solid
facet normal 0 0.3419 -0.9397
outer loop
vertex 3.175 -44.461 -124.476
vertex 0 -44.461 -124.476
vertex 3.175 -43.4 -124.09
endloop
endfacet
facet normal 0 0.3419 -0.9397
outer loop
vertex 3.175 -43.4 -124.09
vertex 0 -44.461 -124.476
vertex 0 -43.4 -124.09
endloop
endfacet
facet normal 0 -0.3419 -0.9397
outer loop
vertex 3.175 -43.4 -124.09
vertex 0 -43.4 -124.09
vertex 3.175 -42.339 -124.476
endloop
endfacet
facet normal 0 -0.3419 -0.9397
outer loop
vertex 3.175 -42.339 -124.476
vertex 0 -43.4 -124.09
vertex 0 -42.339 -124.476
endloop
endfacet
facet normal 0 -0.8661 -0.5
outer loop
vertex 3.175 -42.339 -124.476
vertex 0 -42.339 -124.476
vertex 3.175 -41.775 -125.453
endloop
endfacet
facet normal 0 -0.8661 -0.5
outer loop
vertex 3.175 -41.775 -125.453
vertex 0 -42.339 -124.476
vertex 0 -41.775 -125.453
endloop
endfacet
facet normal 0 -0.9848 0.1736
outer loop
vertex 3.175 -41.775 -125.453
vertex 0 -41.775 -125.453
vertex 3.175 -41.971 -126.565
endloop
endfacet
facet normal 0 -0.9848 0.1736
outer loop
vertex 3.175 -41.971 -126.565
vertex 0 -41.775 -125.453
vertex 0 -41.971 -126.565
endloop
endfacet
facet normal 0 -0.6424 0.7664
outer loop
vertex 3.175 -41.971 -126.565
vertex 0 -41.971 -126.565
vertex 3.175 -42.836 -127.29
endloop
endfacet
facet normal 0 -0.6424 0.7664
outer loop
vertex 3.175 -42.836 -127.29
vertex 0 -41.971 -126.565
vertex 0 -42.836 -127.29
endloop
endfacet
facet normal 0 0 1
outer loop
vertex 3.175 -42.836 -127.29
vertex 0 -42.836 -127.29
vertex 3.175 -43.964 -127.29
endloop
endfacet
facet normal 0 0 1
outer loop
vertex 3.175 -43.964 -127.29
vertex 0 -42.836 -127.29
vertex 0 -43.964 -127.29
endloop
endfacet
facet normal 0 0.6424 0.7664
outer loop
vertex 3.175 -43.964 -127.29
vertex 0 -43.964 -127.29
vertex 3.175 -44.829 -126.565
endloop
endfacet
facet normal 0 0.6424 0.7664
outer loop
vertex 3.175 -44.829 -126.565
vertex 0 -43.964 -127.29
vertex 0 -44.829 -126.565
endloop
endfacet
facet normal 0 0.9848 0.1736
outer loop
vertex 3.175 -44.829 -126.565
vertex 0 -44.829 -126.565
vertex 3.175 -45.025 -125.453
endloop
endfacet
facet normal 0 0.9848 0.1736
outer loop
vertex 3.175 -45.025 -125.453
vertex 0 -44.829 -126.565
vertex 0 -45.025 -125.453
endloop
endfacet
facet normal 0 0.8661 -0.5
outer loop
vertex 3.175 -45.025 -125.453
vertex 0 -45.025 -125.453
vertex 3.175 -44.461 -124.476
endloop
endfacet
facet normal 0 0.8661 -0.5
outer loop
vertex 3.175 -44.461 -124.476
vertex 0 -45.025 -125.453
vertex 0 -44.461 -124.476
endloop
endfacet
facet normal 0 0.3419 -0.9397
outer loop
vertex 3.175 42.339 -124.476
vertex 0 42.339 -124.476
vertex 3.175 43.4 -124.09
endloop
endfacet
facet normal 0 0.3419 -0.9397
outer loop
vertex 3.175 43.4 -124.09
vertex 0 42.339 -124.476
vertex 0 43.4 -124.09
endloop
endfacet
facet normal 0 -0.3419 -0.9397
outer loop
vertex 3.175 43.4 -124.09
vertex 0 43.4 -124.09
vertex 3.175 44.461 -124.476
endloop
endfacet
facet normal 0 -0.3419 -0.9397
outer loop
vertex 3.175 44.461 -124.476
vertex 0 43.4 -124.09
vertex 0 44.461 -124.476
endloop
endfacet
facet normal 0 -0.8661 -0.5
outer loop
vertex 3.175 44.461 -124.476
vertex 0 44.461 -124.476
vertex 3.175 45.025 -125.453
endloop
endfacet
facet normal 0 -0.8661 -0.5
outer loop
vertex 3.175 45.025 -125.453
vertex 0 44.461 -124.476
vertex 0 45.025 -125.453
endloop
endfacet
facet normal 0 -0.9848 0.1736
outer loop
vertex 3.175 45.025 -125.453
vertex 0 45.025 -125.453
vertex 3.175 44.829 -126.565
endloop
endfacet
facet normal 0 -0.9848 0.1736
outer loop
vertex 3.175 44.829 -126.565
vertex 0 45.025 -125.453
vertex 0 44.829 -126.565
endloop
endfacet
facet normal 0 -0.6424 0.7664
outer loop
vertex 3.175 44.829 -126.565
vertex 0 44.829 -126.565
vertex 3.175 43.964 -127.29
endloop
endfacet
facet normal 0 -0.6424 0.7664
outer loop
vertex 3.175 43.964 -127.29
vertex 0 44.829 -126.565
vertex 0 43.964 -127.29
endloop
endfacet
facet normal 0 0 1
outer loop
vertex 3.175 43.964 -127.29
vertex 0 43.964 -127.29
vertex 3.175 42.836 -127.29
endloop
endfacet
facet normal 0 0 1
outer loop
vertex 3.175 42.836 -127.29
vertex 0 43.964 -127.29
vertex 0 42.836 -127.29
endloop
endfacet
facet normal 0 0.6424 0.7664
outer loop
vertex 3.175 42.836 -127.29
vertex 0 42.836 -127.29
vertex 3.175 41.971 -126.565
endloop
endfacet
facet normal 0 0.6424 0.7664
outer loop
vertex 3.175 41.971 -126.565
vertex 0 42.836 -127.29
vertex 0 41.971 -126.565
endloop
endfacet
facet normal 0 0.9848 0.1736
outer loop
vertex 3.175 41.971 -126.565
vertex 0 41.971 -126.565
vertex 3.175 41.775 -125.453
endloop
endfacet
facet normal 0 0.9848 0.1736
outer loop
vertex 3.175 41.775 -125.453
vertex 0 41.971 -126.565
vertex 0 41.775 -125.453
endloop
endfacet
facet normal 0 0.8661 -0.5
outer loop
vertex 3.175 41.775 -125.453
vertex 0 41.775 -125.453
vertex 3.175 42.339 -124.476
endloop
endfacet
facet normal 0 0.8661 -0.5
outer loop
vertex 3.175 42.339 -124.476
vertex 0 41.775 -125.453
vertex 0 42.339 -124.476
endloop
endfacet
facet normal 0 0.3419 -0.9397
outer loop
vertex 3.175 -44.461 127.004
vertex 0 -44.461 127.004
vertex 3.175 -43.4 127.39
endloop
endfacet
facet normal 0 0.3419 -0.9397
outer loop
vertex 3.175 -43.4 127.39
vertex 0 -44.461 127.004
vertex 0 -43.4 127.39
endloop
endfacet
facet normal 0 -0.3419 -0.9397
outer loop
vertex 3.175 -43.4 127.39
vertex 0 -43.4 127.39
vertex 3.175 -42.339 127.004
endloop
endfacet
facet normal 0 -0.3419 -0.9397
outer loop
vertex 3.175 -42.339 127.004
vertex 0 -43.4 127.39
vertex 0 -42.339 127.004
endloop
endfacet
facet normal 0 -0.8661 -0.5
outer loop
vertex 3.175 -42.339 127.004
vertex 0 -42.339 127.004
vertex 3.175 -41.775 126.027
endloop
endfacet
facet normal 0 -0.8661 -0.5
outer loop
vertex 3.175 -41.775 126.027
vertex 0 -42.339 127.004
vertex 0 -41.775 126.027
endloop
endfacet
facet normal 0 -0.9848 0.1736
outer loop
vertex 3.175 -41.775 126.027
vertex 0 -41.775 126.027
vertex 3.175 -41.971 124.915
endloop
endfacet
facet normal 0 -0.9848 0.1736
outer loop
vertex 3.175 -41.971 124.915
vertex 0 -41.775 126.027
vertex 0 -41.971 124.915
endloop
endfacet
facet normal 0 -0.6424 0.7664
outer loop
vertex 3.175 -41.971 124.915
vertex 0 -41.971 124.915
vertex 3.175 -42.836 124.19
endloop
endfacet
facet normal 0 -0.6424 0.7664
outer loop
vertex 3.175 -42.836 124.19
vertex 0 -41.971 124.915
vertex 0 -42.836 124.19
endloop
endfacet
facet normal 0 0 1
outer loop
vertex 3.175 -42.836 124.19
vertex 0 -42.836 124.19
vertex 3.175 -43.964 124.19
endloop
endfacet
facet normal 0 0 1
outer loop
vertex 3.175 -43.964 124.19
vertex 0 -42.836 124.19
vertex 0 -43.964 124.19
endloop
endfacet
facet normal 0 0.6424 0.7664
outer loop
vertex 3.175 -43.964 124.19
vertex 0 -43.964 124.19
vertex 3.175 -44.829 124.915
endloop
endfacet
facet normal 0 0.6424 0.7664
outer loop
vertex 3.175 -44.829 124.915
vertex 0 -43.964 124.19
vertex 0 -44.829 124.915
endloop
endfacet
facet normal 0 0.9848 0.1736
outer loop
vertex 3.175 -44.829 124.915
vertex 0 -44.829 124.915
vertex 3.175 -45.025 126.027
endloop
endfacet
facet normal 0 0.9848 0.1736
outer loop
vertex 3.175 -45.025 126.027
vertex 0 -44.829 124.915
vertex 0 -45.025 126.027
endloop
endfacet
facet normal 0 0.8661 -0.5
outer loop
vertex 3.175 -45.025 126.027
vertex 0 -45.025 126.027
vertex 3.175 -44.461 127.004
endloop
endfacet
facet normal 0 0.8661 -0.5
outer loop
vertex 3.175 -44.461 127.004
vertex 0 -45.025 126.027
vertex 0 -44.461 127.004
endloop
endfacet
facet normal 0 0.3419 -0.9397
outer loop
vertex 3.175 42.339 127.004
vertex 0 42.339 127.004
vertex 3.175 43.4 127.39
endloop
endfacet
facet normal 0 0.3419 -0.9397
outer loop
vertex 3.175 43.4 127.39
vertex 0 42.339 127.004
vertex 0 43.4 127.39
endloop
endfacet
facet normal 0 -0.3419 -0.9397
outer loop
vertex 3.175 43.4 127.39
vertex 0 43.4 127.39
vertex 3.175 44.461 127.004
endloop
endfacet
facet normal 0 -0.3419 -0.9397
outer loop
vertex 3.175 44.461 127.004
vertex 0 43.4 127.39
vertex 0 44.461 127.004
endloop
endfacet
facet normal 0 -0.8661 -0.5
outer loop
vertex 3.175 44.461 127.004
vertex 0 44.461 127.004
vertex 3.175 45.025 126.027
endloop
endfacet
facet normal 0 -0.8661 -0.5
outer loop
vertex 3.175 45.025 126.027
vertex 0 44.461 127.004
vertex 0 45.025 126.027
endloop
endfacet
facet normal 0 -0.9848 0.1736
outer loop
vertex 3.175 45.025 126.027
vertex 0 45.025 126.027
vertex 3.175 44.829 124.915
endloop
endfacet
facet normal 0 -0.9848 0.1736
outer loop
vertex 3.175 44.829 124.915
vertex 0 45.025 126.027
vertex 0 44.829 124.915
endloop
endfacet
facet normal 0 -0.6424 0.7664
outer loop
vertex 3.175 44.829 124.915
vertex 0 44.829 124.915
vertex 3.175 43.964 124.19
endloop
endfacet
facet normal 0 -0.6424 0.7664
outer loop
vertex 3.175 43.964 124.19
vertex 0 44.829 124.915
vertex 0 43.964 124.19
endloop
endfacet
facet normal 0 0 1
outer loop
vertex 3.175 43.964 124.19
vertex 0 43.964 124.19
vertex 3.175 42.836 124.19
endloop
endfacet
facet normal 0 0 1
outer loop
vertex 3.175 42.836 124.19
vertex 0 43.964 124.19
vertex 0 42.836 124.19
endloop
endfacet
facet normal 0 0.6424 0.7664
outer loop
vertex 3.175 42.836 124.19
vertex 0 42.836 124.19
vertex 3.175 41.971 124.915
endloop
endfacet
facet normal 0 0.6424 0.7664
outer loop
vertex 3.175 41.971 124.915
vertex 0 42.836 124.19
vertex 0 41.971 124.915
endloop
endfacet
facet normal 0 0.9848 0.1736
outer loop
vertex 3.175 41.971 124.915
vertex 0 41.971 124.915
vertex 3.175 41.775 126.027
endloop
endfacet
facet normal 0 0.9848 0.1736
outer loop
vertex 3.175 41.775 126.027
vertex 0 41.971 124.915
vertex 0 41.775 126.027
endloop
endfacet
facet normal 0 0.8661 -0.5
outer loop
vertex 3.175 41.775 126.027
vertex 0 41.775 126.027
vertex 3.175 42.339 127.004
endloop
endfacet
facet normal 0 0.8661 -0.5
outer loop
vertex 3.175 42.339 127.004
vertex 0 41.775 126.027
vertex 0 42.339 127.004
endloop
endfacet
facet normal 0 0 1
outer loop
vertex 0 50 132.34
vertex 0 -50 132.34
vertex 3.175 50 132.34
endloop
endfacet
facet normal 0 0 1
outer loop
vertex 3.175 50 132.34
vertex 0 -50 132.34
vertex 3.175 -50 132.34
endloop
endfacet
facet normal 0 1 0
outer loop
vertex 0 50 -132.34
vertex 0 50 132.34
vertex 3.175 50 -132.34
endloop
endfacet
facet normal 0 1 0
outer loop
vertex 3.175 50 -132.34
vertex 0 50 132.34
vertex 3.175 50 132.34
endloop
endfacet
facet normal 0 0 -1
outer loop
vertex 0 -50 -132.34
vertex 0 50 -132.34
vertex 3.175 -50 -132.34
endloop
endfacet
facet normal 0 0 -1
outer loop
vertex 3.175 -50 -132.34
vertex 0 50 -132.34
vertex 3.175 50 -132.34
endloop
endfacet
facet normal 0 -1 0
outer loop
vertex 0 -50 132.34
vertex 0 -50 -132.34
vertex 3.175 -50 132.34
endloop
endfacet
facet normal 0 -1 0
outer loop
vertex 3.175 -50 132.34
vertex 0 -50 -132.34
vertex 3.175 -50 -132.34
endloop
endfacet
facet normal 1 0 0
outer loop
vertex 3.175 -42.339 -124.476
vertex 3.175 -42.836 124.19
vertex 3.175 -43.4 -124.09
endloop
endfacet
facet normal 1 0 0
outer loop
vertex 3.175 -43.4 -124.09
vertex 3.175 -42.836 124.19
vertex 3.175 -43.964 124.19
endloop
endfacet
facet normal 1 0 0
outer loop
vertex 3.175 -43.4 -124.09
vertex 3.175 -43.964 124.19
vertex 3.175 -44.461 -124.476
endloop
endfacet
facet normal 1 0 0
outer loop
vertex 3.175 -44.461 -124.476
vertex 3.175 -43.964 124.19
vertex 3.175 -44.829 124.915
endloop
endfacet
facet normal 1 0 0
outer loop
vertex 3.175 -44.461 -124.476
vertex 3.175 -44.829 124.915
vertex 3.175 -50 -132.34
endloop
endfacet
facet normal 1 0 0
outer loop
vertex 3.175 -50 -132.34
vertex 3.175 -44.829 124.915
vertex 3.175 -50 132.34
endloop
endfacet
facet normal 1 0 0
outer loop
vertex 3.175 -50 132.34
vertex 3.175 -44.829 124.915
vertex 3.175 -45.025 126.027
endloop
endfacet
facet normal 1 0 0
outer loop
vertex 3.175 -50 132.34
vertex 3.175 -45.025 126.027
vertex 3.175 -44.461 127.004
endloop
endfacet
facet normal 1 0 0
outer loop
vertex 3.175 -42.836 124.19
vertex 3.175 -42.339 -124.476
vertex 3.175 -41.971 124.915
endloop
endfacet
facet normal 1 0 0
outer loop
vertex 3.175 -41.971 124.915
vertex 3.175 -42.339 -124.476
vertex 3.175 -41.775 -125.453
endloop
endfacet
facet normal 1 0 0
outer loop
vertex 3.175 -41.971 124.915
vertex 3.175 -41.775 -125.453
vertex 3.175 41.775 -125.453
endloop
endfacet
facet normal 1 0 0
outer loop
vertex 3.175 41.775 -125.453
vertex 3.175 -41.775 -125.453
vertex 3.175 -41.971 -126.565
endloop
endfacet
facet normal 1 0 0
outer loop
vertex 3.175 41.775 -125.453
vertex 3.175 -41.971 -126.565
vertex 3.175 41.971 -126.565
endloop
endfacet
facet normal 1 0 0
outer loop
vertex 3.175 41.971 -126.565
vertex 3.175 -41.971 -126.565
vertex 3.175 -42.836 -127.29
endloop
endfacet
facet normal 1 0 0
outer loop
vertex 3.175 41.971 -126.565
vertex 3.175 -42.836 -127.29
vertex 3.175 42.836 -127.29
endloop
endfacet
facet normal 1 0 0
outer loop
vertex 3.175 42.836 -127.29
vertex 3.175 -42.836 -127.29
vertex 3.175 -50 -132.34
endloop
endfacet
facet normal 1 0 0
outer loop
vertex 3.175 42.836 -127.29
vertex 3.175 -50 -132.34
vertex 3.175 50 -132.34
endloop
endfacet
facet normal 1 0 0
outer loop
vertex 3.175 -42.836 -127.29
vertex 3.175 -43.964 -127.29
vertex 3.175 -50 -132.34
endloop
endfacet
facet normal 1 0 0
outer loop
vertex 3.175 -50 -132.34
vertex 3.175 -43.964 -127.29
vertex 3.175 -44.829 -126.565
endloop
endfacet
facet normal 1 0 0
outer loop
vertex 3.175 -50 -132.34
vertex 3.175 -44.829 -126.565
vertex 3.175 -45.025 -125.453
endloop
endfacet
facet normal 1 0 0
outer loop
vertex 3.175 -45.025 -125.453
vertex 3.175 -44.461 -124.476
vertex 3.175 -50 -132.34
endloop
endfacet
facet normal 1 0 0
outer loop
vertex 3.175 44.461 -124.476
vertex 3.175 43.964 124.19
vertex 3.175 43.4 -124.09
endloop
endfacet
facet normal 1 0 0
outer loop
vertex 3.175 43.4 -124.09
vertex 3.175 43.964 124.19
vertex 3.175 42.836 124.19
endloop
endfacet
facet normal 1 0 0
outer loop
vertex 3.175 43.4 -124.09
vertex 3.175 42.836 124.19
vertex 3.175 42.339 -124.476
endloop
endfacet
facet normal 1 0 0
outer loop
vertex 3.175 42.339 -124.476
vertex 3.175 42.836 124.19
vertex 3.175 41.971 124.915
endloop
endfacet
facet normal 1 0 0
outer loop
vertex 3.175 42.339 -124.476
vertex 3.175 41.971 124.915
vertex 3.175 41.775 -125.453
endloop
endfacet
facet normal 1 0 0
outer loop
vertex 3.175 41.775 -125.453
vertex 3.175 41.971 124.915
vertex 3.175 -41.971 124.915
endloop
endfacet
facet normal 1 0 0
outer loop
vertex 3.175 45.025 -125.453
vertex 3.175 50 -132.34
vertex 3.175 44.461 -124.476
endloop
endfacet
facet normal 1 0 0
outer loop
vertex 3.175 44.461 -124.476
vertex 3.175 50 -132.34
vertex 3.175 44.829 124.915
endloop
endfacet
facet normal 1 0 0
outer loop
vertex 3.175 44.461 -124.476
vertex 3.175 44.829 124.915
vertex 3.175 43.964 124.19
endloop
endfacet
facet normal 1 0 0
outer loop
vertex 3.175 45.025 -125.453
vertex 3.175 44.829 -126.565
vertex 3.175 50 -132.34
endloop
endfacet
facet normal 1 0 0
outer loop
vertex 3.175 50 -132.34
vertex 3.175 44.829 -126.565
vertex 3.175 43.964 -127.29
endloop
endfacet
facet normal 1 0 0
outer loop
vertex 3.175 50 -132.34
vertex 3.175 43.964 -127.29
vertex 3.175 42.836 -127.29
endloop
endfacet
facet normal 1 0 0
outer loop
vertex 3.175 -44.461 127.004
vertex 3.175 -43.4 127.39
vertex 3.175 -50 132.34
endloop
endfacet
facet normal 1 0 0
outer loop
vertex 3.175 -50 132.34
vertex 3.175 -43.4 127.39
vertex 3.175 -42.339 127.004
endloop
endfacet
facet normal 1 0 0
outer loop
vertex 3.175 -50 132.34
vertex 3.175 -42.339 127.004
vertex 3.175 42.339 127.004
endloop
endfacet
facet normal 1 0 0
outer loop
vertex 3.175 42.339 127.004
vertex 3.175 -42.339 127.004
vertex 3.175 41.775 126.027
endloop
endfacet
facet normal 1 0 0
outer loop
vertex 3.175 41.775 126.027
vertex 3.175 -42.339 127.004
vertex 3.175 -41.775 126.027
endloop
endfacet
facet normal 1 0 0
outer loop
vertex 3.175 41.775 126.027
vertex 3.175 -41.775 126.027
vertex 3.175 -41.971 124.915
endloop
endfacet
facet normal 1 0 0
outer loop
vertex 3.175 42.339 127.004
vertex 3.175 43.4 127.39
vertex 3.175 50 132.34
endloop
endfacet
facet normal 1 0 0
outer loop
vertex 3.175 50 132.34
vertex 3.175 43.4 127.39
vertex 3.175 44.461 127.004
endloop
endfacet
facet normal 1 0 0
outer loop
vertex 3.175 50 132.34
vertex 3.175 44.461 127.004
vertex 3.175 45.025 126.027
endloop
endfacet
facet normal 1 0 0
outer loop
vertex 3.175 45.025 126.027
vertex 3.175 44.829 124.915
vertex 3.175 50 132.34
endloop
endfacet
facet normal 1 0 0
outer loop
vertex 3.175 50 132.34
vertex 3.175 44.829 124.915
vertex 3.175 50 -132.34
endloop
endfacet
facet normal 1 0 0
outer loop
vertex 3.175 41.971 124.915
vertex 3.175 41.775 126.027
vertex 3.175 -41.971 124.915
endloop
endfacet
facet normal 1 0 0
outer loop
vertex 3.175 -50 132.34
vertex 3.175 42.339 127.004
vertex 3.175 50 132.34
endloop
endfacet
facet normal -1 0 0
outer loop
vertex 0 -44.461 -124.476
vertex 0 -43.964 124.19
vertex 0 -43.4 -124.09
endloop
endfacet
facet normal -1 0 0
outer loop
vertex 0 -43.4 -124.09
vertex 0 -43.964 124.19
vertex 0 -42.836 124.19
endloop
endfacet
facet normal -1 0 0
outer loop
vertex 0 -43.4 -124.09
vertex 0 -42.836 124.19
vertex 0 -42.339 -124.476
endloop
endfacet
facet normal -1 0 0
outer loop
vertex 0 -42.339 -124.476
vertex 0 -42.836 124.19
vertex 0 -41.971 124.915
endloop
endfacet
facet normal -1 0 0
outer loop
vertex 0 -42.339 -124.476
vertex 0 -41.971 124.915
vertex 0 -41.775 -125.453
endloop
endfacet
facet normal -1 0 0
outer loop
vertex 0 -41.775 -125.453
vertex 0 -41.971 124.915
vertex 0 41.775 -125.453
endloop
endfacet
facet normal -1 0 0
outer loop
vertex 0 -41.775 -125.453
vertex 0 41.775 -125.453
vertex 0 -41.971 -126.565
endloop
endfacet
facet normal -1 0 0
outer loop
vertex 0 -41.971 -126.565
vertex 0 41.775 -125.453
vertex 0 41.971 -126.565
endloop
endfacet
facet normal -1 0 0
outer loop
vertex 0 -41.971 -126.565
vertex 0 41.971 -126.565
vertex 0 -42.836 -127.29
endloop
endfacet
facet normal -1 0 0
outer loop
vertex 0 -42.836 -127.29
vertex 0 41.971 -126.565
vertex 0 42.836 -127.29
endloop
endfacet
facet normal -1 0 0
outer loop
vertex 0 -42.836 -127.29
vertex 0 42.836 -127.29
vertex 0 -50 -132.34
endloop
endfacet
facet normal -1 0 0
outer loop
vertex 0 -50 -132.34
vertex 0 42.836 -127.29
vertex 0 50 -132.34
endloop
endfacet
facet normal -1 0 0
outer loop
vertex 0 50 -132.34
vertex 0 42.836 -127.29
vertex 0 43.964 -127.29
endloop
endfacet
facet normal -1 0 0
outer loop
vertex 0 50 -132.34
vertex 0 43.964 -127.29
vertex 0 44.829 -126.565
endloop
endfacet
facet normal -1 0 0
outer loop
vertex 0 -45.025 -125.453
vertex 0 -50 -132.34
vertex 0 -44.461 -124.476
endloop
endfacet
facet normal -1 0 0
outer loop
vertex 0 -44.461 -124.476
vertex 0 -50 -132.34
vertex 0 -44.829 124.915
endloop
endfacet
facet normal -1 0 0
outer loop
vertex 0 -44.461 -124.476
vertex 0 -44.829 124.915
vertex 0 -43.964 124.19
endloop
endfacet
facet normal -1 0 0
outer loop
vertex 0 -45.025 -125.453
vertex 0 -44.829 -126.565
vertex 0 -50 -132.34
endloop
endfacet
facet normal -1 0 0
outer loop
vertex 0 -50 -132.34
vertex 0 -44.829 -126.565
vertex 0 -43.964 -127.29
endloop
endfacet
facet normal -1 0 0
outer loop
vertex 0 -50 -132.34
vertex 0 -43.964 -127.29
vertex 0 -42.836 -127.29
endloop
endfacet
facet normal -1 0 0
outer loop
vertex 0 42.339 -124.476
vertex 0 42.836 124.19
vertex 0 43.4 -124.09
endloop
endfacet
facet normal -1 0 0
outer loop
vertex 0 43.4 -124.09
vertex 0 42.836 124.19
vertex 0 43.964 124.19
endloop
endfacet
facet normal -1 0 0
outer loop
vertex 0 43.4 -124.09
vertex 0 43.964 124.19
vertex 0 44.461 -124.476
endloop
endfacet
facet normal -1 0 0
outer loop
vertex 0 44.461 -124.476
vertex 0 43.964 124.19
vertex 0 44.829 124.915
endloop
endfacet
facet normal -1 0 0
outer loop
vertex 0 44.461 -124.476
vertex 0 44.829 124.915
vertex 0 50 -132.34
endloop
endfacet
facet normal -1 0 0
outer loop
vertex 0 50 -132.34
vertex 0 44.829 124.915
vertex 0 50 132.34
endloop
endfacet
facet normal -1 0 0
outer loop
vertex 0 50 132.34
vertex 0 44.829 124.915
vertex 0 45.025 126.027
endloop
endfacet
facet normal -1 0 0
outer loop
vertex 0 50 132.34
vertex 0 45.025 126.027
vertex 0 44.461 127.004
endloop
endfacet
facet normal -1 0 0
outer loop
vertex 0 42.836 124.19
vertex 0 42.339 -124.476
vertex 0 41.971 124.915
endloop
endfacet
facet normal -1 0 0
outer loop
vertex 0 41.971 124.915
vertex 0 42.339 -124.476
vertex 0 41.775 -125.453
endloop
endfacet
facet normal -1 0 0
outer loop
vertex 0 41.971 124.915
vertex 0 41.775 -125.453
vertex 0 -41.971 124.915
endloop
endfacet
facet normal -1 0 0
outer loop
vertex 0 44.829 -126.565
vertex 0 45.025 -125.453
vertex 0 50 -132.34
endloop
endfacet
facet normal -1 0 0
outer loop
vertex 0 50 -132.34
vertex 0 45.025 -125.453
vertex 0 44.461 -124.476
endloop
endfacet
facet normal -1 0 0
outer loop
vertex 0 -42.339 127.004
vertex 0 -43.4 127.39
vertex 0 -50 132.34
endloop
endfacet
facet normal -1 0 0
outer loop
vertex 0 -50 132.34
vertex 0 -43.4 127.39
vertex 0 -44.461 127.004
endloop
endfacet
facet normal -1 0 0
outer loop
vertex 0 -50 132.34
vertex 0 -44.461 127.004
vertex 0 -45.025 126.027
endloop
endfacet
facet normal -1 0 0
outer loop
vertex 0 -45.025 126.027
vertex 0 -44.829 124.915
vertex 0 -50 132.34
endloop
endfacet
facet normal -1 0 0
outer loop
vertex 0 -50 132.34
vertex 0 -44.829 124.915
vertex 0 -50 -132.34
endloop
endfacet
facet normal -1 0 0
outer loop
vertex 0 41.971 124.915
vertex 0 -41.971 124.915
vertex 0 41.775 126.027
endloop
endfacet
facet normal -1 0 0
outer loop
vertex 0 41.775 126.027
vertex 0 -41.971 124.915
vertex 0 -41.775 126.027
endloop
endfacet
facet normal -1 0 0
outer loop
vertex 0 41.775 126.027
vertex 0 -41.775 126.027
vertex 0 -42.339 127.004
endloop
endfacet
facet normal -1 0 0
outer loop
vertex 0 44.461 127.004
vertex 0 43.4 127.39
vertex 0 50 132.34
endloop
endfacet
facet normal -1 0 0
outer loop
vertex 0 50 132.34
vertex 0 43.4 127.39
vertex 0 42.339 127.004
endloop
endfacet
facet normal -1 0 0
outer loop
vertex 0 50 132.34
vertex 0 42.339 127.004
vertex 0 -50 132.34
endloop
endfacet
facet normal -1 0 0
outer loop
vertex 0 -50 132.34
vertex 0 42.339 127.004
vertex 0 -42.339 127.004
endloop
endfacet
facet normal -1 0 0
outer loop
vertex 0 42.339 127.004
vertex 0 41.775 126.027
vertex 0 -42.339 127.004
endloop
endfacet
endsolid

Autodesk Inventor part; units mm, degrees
ref_plane "YZ Plane" through (0, 0, 0) normal (1, 0, 0) x (0, 1, 0)
ref_plane "XZ Plane" through (0, 0, 0) normal (0, 1, 0) x (-1, 0, 0)
ref_plane "XY Plane" through (0, 0, 0) normal (0, 0, 1) x (1, 0, 0)
sketch "Sketch1" plane through (0, 0, 0) normal (1, 0, 0) x (0, 1, 0)
  line L0 (50, 132.34) -> (-50, 132.34)
  line L1 (-50, 132.34) -> (-50, -132.34)
  line L2 (-50, -132.34) -> (50, -132.34)
  line L3 (50, -132.34) -> (50, 132.34)
  line L4 (50, 132.34) -> (-50, -132.34) construction
  line L5 (-50, 132.34) -> (50, -132.34) construction
  point P0 (0, 0)
extrude "Front_Base" add sketch "Sketch1" along normal blind 3.175
sketch "Sketch2" plane through (3.175, 0, 0) normal (1, 0, 0) x (0, 0, -1)
  circle A0 centre (-125.74, 43.4) radius 1.65
  circle A1 centre (125.74, 43.4) radius 1.65
  circle A2 centre (125.74, -43.4) radius 1.65
  circle A3 centre (-125.74, -43.4) radius 1.65
  line L0 (132.34, 50) -> (-132.34, 50) projected
  line L1 (-132.34, 50) -> (-132.34, -50) projected
  line L2 (132.34, -50) -> (132.34, 50) projected
  line L3 (-132.34, -50) -> (132.34, -50) projected
  point P0 (0, 0)
  dimension "d5" = 6.6
  dimension "d6" = 6.6
  dimension "d7" = 6.6
  dimension "d8" = 6.6
extrude "Joint_Holes" cut sketch "Sketch2" along normal through all both and the other way through all contours A0 | A1 | A2 | A3
equation "\"d6\" = d5"
equation "\"d7\" = d5"
equation "\"d8\" = d5"
properties part number "HP-01" material "Wood (Cherry)"
